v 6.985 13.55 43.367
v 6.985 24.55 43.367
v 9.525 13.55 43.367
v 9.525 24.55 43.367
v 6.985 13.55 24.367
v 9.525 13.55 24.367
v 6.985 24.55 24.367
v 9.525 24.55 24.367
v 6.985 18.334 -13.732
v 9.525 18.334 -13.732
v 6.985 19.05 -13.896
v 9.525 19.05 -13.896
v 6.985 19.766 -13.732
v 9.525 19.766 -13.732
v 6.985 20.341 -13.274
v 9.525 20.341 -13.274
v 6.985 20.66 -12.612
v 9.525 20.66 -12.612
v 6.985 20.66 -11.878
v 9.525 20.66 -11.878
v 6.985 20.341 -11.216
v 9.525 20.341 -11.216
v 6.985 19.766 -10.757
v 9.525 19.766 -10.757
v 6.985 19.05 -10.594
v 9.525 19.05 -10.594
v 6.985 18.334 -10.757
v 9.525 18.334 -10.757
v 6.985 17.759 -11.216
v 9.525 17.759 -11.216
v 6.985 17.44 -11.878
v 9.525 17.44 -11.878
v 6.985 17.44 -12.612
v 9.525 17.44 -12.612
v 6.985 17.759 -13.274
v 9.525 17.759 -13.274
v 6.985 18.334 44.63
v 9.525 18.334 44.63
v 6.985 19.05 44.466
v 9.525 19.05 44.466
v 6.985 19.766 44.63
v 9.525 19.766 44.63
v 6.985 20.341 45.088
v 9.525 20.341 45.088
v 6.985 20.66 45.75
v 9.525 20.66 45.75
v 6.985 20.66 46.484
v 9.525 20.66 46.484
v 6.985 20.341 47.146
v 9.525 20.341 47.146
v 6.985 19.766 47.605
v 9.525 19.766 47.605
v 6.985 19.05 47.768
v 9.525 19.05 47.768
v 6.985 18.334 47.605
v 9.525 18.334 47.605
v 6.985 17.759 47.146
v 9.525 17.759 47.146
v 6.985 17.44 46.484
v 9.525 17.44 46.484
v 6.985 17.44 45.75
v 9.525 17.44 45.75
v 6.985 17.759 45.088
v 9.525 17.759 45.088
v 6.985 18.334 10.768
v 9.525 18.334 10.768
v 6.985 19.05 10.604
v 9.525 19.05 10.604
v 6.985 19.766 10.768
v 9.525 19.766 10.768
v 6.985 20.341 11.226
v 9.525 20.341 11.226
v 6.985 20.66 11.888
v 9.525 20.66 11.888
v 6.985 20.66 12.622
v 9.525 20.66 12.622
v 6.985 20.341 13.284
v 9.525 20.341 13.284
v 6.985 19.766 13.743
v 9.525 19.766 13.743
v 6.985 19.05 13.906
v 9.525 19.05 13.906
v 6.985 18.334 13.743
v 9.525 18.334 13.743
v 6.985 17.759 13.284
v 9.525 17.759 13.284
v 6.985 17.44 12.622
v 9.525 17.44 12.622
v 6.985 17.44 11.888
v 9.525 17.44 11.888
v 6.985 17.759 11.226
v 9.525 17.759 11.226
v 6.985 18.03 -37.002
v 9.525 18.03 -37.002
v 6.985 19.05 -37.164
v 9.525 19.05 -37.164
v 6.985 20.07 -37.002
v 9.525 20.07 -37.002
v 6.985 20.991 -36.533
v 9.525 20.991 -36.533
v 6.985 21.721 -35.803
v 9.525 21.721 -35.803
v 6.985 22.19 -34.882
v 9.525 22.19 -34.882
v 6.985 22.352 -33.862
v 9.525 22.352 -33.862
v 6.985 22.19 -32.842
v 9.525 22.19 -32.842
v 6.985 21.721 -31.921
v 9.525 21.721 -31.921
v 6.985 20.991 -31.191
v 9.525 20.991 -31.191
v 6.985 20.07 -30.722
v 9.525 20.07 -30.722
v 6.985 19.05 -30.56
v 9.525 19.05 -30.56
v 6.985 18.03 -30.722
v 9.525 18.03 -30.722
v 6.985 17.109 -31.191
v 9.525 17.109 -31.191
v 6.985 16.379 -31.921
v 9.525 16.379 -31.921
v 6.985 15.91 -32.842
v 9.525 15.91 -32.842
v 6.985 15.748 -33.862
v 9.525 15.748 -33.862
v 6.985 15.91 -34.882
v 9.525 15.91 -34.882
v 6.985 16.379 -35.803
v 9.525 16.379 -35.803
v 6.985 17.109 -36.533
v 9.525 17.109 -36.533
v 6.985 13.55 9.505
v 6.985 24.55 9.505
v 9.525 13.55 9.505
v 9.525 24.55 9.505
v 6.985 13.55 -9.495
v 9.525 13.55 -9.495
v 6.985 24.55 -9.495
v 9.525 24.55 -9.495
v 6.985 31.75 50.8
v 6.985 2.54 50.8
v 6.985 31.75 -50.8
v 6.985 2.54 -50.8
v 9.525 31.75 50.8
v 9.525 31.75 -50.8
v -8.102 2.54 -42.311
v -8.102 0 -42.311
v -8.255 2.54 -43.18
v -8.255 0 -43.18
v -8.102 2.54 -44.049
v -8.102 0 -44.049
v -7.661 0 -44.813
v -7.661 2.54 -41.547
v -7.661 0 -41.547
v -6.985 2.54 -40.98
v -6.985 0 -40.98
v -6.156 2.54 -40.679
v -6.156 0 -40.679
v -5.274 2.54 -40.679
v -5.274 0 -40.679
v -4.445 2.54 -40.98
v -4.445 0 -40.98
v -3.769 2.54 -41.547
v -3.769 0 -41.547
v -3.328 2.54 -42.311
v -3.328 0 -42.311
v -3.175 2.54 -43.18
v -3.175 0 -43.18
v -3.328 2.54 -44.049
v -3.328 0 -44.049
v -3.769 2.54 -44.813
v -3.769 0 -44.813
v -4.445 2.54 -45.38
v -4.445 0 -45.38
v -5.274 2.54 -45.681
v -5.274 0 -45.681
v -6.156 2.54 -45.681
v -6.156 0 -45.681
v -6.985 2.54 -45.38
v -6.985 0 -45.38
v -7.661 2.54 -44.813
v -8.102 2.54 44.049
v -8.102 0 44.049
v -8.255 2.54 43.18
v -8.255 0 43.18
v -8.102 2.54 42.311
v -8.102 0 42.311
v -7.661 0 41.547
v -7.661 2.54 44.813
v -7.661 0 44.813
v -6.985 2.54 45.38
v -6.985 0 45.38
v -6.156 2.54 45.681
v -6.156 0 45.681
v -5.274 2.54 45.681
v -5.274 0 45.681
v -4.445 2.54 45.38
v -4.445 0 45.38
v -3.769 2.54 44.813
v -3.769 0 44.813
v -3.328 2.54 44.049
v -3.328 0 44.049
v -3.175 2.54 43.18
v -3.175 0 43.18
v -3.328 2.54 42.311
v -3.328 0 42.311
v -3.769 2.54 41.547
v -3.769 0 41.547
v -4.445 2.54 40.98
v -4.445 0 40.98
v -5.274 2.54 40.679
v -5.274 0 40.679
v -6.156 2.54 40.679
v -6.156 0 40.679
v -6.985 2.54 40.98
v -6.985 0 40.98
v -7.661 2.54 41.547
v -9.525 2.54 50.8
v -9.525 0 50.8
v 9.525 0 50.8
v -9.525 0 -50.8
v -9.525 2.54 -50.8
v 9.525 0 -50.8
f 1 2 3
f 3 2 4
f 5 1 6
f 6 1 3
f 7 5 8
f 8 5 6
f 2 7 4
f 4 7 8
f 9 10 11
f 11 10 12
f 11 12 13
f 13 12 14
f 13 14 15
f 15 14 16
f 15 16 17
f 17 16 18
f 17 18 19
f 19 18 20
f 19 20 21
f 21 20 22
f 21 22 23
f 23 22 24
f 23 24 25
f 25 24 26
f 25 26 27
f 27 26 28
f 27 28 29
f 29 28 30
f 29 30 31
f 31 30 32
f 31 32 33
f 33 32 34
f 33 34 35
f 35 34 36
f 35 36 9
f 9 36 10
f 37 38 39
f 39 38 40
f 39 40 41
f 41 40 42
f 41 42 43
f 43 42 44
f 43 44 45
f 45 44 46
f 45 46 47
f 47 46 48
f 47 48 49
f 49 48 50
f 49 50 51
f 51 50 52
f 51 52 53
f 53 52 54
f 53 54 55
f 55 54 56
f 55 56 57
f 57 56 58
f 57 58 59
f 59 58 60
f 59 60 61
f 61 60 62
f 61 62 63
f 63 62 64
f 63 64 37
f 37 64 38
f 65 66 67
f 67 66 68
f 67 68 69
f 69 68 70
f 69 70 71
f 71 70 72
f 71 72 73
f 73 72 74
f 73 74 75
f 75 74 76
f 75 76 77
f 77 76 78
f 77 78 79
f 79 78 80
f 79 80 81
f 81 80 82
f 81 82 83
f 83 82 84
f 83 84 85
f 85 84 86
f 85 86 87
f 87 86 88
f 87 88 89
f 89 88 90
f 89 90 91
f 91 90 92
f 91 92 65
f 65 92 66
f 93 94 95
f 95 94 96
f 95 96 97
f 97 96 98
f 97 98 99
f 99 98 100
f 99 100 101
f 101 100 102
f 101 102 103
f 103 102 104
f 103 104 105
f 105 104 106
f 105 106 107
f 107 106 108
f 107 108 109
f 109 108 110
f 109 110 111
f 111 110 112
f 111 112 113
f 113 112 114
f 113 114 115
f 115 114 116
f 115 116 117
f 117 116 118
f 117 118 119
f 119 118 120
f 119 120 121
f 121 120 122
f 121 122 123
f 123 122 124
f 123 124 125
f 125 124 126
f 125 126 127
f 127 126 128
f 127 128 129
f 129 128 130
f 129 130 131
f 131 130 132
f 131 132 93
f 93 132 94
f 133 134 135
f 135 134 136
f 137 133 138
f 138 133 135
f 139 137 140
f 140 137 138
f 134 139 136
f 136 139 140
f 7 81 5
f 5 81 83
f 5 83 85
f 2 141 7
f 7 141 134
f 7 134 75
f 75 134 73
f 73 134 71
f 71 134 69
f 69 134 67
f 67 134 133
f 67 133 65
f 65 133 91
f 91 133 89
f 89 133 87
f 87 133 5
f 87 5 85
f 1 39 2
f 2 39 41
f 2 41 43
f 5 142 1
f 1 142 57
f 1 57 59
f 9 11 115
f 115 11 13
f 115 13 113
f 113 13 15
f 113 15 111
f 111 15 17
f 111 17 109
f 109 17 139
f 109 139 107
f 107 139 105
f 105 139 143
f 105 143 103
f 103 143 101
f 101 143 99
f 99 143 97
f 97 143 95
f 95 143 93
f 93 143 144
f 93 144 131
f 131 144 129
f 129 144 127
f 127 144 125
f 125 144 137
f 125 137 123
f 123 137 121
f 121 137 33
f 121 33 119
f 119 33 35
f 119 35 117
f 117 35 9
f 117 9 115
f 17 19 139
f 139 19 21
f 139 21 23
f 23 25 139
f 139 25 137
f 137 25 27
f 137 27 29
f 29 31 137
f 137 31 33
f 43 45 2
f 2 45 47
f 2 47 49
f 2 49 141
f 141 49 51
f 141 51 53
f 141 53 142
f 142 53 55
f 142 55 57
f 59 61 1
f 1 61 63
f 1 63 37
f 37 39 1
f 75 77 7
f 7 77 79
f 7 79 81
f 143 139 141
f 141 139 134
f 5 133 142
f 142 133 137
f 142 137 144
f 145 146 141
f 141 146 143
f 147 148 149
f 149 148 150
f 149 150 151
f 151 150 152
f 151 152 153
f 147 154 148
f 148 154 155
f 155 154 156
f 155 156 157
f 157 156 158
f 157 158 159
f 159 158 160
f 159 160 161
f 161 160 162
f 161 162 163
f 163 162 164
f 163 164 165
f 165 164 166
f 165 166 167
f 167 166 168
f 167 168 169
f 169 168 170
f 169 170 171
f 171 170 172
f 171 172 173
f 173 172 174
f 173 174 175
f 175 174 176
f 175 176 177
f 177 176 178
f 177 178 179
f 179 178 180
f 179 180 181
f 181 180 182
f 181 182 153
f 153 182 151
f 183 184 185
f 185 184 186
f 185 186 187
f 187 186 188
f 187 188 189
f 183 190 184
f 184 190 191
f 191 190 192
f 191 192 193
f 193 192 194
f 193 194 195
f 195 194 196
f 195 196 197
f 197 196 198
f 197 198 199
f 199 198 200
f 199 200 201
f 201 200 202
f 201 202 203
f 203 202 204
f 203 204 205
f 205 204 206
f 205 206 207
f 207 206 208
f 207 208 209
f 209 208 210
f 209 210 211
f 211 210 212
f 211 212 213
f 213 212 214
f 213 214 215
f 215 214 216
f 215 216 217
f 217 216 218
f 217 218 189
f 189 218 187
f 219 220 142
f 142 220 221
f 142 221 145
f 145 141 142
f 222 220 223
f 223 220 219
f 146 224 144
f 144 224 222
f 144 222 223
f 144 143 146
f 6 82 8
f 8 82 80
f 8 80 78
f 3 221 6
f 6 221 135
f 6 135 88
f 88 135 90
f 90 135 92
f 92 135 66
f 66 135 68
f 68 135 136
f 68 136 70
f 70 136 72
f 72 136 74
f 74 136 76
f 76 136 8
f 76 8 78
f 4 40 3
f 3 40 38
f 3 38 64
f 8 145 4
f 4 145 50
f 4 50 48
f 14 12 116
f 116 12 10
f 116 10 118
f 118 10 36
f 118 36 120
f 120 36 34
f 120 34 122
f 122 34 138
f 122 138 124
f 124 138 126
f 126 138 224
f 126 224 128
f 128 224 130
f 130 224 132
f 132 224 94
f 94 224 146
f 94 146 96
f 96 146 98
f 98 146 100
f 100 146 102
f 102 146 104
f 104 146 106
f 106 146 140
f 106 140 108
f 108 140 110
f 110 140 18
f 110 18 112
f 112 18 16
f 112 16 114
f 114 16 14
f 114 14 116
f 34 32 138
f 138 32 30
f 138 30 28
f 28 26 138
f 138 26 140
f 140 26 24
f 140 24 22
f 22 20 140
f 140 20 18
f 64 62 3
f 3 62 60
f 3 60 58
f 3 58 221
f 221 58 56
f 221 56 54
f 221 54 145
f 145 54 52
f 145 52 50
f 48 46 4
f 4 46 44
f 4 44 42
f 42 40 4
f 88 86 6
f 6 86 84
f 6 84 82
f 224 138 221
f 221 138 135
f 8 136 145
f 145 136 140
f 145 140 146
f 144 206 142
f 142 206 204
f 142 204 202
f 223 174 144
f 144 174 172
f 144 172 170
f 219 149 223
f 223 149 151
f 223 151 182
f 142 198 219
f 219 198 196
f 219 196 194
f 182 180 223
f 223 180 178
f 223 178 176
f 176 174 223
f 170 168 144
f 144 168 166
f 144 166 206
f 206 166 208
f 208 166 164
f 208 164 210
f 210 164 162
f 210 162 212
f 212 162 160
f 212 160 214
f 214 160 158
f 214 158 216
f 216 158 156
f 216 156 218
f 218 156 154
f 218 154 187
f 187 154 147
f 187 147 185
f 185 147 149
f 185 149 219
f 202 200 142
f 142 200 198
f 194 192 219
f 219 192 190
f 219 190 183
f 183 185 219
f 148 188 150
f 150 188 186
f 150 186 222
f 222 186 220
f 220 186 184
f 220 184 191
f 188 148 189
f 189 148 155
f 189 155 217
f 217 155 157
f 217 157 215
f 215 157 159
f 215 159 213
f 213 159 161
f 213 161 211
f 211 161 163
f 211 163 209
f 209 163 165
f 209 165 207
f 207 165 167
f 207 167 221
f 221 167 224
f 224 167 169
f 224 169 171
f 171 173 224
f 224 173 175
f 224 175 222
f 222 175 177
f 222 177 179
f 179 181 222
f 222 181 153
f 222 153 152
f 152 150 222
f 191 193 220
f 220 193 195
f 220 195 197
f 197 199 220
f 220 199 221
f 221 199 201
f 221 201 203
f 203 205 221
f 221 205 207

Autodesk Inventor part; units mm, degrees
ref_plane "YZ Plane" through (0, 0, 0) normal (1, 0, 0) x (0, 1, 0)
ref_plane "XZ Plane" through (0, 0, 0) normal (0, 1, 0) x (-1, 0, 0)
ref_plane "XY Plane" through (0, 0, 0) normal (0, 0, 1) x (1, 0, 0)
sketch "Sketch2" plane through (0, 0, 0) normal (0, 1, 0) x (-1, 0, 0)
  line L0 (-9.525, 50.8) -> (9.525, 50.8)
  line L1 (9.525, 50.8) -> (9.525, -50.8)
  line L2 (9.525, -50.8) -> (-9.525, -50.8)
  line L3 (-9.525, -50.8) -> (-9.525, 50.8)
  line L4 (-9.525, 50.8) -> (9.525, -50.8) construction
  line L5 (9.525, 50.8) -> (-9.525, -50.8) construction
  line L6 (-9.525, 50.8) -> (5.715, 50.8)
  line L7 (5.715, 50.8) -> (5.715, 43.18)
  circle A0 centre (5.715, 43.18) radius 2.54
  line L8 (-9.525, -50.8) -> (5.715, -50.8)
  line L9 (5.715, -50.8) -> (5.715, -43.18)
  circle A1 centre (5.715, -43.18) radius 2.54
  point P0 (0, 0)
  dimension "d0" = 19.05
  dimension "d1" = 101.6
  dimension "d2" = 15.24
  dimension "d3" = 7.62
  dimension "d4" = 5.08
  dimension "d10" = 15.24
  dimension "d11" = 7.62
  dimension "d12" = 5.08
extrude "Extrusion3" add sketch "Sketch2" along normal blind 2.54
sketch "Sketch4" plane through (0, 2.54, 0) normal (0, 1, 0) x (1, 0, 0)
  line L0 (9.525, -50.8) -> (9.525, 50.8) projected
  line L1 (9.525, -50.8) -> (6.985, -50.8)
  line L2 (6.985, -50.8) -> (6.985, 50.8)
  line L3 (6.985, 50.8) -> (9.525, 50.8)
  line L4 (9.525, 50.8) -> (9.525, -50.8)
  point P0 (0, 0)
  dimension "d15" = 2.54
  dimension "d16" = 101.6
extrude "Extrusion4" add sketch "Sketch4" along normal blind 29.21
sketch "Sketch5" plane through (9.525, 0, 50.8) normal (1, 0, 0) x (0, 0, -1)
  line L0 (0, 0) -> (101.6, 0) projected
  line L1 (101.6, 0) -> (101.6, 31.75) projected
  line L2 (0, 31.75) -> (101.6, 31.75) projected
  line L3 (0, 0) -> (0, 31.75) projected
  line L4 (0, 31.75) -> (101.6, 31.75) projected
  line L5 (0, 31.75) -> (33.8658, 31.75)
  line L6 (33.8658, 31.75) -> (67.724, 31.75)
  line L7 (16.9329, 31.75) -> (16.9329, 19.05)
  line L8 (50.7949, 31.75) -> (50.7949, 19.05)
  line L9 (67.724, 31.75) -> (101.6, 31.75)
  line L10 (84.662, 31.75) -> (84.662, 19.05)
  line L11 (16.9329, 19.05) -> (4.6829, 19.05)
  line L12 (4.6829, 19.05) -> (29.1829, 19.05)
  line L13 (50.7949, 19.05) -> (38.5449, 19.05)
  line L14 (38.5449, 19.05) -> (63.0449, 19.05)
  circle A0 centre (4.6829, 19.05) radius 1.651
  circle A1 centre (29.1829, 19.05) radius 1.651
  circle A2 centre (38.5449, 19.05) radius 1.651
  circle A3 centre (63.0449, 19.05) radius 1.651
  line L15 (7.4329, 13.55) -> (26.4329, 13.55)
  line L16 (26.4329, 13.55) -> (26.4329, 24.55)
  line L17 (26.4329, 24.55) -> (7.4329, 24.55)
  line L18 (7.4329, 24.55) -> (7.4329, 13.55)
  line L19 (7.4329, 13.55) -> (26.4329, 24.55) construction
  line L20 (26.4329, 13.55) -> (7.4329, 24.55) construction
  line L21 (41.2949, 13.55) -> (60.2949, 13.55)
  line L22 (60.2949, 13.55) -> (60.2949, 24.55)
  line L23 (60.2949, 24.55) -> (41.2949, 24.55)
  line L24 (41.2949, 24.55) -> (41.2949, 13.55)
  line L25 (41.2949, 13.55) -> (60.2949, 24.55) construction
  line L26 (60.2949, 13.55) -> (41.2949, 24.55) construction
  circle A4 centre (84.662, 19.05) radius 3.302
  point P0 (50.8, 0)
  dimension "d19" = 33.8658
  dimension "d20" = 33.8582
  dimension "d21" = 12.7
  dimension "d22" = 12.7
  dimension "d23" = 12.7
  dimension "d24" = 12.25
  dimension "d25" = 24.5
  dimension "d26" = 12.25
  dimension "d27" = 24.5
  dimension "d28" = 3.302
  dimension "d29" = 3.302
  dimension "d30" = 3.302
  dimension "d31" = 3.302
  dimension "d32" = 19
  dimension "d33" = 11
  dimension "d34" = 19
  dimension "d35" = 11
  dimension "d36" = 6.604
extrude "Extrusion5" cut sketch "Sketch5" against normal through all contours A4 | A3 | A2 | L23 L22 L14 L8 | L8 L13 L24 L23 | A0 | L17 L16 L12 L7 | L7 L11 L18 L17 | L12 L16 L15 L18 L11 | L14 L22 L21 L24 L13
properties part number "Pi-Output-Holder"
